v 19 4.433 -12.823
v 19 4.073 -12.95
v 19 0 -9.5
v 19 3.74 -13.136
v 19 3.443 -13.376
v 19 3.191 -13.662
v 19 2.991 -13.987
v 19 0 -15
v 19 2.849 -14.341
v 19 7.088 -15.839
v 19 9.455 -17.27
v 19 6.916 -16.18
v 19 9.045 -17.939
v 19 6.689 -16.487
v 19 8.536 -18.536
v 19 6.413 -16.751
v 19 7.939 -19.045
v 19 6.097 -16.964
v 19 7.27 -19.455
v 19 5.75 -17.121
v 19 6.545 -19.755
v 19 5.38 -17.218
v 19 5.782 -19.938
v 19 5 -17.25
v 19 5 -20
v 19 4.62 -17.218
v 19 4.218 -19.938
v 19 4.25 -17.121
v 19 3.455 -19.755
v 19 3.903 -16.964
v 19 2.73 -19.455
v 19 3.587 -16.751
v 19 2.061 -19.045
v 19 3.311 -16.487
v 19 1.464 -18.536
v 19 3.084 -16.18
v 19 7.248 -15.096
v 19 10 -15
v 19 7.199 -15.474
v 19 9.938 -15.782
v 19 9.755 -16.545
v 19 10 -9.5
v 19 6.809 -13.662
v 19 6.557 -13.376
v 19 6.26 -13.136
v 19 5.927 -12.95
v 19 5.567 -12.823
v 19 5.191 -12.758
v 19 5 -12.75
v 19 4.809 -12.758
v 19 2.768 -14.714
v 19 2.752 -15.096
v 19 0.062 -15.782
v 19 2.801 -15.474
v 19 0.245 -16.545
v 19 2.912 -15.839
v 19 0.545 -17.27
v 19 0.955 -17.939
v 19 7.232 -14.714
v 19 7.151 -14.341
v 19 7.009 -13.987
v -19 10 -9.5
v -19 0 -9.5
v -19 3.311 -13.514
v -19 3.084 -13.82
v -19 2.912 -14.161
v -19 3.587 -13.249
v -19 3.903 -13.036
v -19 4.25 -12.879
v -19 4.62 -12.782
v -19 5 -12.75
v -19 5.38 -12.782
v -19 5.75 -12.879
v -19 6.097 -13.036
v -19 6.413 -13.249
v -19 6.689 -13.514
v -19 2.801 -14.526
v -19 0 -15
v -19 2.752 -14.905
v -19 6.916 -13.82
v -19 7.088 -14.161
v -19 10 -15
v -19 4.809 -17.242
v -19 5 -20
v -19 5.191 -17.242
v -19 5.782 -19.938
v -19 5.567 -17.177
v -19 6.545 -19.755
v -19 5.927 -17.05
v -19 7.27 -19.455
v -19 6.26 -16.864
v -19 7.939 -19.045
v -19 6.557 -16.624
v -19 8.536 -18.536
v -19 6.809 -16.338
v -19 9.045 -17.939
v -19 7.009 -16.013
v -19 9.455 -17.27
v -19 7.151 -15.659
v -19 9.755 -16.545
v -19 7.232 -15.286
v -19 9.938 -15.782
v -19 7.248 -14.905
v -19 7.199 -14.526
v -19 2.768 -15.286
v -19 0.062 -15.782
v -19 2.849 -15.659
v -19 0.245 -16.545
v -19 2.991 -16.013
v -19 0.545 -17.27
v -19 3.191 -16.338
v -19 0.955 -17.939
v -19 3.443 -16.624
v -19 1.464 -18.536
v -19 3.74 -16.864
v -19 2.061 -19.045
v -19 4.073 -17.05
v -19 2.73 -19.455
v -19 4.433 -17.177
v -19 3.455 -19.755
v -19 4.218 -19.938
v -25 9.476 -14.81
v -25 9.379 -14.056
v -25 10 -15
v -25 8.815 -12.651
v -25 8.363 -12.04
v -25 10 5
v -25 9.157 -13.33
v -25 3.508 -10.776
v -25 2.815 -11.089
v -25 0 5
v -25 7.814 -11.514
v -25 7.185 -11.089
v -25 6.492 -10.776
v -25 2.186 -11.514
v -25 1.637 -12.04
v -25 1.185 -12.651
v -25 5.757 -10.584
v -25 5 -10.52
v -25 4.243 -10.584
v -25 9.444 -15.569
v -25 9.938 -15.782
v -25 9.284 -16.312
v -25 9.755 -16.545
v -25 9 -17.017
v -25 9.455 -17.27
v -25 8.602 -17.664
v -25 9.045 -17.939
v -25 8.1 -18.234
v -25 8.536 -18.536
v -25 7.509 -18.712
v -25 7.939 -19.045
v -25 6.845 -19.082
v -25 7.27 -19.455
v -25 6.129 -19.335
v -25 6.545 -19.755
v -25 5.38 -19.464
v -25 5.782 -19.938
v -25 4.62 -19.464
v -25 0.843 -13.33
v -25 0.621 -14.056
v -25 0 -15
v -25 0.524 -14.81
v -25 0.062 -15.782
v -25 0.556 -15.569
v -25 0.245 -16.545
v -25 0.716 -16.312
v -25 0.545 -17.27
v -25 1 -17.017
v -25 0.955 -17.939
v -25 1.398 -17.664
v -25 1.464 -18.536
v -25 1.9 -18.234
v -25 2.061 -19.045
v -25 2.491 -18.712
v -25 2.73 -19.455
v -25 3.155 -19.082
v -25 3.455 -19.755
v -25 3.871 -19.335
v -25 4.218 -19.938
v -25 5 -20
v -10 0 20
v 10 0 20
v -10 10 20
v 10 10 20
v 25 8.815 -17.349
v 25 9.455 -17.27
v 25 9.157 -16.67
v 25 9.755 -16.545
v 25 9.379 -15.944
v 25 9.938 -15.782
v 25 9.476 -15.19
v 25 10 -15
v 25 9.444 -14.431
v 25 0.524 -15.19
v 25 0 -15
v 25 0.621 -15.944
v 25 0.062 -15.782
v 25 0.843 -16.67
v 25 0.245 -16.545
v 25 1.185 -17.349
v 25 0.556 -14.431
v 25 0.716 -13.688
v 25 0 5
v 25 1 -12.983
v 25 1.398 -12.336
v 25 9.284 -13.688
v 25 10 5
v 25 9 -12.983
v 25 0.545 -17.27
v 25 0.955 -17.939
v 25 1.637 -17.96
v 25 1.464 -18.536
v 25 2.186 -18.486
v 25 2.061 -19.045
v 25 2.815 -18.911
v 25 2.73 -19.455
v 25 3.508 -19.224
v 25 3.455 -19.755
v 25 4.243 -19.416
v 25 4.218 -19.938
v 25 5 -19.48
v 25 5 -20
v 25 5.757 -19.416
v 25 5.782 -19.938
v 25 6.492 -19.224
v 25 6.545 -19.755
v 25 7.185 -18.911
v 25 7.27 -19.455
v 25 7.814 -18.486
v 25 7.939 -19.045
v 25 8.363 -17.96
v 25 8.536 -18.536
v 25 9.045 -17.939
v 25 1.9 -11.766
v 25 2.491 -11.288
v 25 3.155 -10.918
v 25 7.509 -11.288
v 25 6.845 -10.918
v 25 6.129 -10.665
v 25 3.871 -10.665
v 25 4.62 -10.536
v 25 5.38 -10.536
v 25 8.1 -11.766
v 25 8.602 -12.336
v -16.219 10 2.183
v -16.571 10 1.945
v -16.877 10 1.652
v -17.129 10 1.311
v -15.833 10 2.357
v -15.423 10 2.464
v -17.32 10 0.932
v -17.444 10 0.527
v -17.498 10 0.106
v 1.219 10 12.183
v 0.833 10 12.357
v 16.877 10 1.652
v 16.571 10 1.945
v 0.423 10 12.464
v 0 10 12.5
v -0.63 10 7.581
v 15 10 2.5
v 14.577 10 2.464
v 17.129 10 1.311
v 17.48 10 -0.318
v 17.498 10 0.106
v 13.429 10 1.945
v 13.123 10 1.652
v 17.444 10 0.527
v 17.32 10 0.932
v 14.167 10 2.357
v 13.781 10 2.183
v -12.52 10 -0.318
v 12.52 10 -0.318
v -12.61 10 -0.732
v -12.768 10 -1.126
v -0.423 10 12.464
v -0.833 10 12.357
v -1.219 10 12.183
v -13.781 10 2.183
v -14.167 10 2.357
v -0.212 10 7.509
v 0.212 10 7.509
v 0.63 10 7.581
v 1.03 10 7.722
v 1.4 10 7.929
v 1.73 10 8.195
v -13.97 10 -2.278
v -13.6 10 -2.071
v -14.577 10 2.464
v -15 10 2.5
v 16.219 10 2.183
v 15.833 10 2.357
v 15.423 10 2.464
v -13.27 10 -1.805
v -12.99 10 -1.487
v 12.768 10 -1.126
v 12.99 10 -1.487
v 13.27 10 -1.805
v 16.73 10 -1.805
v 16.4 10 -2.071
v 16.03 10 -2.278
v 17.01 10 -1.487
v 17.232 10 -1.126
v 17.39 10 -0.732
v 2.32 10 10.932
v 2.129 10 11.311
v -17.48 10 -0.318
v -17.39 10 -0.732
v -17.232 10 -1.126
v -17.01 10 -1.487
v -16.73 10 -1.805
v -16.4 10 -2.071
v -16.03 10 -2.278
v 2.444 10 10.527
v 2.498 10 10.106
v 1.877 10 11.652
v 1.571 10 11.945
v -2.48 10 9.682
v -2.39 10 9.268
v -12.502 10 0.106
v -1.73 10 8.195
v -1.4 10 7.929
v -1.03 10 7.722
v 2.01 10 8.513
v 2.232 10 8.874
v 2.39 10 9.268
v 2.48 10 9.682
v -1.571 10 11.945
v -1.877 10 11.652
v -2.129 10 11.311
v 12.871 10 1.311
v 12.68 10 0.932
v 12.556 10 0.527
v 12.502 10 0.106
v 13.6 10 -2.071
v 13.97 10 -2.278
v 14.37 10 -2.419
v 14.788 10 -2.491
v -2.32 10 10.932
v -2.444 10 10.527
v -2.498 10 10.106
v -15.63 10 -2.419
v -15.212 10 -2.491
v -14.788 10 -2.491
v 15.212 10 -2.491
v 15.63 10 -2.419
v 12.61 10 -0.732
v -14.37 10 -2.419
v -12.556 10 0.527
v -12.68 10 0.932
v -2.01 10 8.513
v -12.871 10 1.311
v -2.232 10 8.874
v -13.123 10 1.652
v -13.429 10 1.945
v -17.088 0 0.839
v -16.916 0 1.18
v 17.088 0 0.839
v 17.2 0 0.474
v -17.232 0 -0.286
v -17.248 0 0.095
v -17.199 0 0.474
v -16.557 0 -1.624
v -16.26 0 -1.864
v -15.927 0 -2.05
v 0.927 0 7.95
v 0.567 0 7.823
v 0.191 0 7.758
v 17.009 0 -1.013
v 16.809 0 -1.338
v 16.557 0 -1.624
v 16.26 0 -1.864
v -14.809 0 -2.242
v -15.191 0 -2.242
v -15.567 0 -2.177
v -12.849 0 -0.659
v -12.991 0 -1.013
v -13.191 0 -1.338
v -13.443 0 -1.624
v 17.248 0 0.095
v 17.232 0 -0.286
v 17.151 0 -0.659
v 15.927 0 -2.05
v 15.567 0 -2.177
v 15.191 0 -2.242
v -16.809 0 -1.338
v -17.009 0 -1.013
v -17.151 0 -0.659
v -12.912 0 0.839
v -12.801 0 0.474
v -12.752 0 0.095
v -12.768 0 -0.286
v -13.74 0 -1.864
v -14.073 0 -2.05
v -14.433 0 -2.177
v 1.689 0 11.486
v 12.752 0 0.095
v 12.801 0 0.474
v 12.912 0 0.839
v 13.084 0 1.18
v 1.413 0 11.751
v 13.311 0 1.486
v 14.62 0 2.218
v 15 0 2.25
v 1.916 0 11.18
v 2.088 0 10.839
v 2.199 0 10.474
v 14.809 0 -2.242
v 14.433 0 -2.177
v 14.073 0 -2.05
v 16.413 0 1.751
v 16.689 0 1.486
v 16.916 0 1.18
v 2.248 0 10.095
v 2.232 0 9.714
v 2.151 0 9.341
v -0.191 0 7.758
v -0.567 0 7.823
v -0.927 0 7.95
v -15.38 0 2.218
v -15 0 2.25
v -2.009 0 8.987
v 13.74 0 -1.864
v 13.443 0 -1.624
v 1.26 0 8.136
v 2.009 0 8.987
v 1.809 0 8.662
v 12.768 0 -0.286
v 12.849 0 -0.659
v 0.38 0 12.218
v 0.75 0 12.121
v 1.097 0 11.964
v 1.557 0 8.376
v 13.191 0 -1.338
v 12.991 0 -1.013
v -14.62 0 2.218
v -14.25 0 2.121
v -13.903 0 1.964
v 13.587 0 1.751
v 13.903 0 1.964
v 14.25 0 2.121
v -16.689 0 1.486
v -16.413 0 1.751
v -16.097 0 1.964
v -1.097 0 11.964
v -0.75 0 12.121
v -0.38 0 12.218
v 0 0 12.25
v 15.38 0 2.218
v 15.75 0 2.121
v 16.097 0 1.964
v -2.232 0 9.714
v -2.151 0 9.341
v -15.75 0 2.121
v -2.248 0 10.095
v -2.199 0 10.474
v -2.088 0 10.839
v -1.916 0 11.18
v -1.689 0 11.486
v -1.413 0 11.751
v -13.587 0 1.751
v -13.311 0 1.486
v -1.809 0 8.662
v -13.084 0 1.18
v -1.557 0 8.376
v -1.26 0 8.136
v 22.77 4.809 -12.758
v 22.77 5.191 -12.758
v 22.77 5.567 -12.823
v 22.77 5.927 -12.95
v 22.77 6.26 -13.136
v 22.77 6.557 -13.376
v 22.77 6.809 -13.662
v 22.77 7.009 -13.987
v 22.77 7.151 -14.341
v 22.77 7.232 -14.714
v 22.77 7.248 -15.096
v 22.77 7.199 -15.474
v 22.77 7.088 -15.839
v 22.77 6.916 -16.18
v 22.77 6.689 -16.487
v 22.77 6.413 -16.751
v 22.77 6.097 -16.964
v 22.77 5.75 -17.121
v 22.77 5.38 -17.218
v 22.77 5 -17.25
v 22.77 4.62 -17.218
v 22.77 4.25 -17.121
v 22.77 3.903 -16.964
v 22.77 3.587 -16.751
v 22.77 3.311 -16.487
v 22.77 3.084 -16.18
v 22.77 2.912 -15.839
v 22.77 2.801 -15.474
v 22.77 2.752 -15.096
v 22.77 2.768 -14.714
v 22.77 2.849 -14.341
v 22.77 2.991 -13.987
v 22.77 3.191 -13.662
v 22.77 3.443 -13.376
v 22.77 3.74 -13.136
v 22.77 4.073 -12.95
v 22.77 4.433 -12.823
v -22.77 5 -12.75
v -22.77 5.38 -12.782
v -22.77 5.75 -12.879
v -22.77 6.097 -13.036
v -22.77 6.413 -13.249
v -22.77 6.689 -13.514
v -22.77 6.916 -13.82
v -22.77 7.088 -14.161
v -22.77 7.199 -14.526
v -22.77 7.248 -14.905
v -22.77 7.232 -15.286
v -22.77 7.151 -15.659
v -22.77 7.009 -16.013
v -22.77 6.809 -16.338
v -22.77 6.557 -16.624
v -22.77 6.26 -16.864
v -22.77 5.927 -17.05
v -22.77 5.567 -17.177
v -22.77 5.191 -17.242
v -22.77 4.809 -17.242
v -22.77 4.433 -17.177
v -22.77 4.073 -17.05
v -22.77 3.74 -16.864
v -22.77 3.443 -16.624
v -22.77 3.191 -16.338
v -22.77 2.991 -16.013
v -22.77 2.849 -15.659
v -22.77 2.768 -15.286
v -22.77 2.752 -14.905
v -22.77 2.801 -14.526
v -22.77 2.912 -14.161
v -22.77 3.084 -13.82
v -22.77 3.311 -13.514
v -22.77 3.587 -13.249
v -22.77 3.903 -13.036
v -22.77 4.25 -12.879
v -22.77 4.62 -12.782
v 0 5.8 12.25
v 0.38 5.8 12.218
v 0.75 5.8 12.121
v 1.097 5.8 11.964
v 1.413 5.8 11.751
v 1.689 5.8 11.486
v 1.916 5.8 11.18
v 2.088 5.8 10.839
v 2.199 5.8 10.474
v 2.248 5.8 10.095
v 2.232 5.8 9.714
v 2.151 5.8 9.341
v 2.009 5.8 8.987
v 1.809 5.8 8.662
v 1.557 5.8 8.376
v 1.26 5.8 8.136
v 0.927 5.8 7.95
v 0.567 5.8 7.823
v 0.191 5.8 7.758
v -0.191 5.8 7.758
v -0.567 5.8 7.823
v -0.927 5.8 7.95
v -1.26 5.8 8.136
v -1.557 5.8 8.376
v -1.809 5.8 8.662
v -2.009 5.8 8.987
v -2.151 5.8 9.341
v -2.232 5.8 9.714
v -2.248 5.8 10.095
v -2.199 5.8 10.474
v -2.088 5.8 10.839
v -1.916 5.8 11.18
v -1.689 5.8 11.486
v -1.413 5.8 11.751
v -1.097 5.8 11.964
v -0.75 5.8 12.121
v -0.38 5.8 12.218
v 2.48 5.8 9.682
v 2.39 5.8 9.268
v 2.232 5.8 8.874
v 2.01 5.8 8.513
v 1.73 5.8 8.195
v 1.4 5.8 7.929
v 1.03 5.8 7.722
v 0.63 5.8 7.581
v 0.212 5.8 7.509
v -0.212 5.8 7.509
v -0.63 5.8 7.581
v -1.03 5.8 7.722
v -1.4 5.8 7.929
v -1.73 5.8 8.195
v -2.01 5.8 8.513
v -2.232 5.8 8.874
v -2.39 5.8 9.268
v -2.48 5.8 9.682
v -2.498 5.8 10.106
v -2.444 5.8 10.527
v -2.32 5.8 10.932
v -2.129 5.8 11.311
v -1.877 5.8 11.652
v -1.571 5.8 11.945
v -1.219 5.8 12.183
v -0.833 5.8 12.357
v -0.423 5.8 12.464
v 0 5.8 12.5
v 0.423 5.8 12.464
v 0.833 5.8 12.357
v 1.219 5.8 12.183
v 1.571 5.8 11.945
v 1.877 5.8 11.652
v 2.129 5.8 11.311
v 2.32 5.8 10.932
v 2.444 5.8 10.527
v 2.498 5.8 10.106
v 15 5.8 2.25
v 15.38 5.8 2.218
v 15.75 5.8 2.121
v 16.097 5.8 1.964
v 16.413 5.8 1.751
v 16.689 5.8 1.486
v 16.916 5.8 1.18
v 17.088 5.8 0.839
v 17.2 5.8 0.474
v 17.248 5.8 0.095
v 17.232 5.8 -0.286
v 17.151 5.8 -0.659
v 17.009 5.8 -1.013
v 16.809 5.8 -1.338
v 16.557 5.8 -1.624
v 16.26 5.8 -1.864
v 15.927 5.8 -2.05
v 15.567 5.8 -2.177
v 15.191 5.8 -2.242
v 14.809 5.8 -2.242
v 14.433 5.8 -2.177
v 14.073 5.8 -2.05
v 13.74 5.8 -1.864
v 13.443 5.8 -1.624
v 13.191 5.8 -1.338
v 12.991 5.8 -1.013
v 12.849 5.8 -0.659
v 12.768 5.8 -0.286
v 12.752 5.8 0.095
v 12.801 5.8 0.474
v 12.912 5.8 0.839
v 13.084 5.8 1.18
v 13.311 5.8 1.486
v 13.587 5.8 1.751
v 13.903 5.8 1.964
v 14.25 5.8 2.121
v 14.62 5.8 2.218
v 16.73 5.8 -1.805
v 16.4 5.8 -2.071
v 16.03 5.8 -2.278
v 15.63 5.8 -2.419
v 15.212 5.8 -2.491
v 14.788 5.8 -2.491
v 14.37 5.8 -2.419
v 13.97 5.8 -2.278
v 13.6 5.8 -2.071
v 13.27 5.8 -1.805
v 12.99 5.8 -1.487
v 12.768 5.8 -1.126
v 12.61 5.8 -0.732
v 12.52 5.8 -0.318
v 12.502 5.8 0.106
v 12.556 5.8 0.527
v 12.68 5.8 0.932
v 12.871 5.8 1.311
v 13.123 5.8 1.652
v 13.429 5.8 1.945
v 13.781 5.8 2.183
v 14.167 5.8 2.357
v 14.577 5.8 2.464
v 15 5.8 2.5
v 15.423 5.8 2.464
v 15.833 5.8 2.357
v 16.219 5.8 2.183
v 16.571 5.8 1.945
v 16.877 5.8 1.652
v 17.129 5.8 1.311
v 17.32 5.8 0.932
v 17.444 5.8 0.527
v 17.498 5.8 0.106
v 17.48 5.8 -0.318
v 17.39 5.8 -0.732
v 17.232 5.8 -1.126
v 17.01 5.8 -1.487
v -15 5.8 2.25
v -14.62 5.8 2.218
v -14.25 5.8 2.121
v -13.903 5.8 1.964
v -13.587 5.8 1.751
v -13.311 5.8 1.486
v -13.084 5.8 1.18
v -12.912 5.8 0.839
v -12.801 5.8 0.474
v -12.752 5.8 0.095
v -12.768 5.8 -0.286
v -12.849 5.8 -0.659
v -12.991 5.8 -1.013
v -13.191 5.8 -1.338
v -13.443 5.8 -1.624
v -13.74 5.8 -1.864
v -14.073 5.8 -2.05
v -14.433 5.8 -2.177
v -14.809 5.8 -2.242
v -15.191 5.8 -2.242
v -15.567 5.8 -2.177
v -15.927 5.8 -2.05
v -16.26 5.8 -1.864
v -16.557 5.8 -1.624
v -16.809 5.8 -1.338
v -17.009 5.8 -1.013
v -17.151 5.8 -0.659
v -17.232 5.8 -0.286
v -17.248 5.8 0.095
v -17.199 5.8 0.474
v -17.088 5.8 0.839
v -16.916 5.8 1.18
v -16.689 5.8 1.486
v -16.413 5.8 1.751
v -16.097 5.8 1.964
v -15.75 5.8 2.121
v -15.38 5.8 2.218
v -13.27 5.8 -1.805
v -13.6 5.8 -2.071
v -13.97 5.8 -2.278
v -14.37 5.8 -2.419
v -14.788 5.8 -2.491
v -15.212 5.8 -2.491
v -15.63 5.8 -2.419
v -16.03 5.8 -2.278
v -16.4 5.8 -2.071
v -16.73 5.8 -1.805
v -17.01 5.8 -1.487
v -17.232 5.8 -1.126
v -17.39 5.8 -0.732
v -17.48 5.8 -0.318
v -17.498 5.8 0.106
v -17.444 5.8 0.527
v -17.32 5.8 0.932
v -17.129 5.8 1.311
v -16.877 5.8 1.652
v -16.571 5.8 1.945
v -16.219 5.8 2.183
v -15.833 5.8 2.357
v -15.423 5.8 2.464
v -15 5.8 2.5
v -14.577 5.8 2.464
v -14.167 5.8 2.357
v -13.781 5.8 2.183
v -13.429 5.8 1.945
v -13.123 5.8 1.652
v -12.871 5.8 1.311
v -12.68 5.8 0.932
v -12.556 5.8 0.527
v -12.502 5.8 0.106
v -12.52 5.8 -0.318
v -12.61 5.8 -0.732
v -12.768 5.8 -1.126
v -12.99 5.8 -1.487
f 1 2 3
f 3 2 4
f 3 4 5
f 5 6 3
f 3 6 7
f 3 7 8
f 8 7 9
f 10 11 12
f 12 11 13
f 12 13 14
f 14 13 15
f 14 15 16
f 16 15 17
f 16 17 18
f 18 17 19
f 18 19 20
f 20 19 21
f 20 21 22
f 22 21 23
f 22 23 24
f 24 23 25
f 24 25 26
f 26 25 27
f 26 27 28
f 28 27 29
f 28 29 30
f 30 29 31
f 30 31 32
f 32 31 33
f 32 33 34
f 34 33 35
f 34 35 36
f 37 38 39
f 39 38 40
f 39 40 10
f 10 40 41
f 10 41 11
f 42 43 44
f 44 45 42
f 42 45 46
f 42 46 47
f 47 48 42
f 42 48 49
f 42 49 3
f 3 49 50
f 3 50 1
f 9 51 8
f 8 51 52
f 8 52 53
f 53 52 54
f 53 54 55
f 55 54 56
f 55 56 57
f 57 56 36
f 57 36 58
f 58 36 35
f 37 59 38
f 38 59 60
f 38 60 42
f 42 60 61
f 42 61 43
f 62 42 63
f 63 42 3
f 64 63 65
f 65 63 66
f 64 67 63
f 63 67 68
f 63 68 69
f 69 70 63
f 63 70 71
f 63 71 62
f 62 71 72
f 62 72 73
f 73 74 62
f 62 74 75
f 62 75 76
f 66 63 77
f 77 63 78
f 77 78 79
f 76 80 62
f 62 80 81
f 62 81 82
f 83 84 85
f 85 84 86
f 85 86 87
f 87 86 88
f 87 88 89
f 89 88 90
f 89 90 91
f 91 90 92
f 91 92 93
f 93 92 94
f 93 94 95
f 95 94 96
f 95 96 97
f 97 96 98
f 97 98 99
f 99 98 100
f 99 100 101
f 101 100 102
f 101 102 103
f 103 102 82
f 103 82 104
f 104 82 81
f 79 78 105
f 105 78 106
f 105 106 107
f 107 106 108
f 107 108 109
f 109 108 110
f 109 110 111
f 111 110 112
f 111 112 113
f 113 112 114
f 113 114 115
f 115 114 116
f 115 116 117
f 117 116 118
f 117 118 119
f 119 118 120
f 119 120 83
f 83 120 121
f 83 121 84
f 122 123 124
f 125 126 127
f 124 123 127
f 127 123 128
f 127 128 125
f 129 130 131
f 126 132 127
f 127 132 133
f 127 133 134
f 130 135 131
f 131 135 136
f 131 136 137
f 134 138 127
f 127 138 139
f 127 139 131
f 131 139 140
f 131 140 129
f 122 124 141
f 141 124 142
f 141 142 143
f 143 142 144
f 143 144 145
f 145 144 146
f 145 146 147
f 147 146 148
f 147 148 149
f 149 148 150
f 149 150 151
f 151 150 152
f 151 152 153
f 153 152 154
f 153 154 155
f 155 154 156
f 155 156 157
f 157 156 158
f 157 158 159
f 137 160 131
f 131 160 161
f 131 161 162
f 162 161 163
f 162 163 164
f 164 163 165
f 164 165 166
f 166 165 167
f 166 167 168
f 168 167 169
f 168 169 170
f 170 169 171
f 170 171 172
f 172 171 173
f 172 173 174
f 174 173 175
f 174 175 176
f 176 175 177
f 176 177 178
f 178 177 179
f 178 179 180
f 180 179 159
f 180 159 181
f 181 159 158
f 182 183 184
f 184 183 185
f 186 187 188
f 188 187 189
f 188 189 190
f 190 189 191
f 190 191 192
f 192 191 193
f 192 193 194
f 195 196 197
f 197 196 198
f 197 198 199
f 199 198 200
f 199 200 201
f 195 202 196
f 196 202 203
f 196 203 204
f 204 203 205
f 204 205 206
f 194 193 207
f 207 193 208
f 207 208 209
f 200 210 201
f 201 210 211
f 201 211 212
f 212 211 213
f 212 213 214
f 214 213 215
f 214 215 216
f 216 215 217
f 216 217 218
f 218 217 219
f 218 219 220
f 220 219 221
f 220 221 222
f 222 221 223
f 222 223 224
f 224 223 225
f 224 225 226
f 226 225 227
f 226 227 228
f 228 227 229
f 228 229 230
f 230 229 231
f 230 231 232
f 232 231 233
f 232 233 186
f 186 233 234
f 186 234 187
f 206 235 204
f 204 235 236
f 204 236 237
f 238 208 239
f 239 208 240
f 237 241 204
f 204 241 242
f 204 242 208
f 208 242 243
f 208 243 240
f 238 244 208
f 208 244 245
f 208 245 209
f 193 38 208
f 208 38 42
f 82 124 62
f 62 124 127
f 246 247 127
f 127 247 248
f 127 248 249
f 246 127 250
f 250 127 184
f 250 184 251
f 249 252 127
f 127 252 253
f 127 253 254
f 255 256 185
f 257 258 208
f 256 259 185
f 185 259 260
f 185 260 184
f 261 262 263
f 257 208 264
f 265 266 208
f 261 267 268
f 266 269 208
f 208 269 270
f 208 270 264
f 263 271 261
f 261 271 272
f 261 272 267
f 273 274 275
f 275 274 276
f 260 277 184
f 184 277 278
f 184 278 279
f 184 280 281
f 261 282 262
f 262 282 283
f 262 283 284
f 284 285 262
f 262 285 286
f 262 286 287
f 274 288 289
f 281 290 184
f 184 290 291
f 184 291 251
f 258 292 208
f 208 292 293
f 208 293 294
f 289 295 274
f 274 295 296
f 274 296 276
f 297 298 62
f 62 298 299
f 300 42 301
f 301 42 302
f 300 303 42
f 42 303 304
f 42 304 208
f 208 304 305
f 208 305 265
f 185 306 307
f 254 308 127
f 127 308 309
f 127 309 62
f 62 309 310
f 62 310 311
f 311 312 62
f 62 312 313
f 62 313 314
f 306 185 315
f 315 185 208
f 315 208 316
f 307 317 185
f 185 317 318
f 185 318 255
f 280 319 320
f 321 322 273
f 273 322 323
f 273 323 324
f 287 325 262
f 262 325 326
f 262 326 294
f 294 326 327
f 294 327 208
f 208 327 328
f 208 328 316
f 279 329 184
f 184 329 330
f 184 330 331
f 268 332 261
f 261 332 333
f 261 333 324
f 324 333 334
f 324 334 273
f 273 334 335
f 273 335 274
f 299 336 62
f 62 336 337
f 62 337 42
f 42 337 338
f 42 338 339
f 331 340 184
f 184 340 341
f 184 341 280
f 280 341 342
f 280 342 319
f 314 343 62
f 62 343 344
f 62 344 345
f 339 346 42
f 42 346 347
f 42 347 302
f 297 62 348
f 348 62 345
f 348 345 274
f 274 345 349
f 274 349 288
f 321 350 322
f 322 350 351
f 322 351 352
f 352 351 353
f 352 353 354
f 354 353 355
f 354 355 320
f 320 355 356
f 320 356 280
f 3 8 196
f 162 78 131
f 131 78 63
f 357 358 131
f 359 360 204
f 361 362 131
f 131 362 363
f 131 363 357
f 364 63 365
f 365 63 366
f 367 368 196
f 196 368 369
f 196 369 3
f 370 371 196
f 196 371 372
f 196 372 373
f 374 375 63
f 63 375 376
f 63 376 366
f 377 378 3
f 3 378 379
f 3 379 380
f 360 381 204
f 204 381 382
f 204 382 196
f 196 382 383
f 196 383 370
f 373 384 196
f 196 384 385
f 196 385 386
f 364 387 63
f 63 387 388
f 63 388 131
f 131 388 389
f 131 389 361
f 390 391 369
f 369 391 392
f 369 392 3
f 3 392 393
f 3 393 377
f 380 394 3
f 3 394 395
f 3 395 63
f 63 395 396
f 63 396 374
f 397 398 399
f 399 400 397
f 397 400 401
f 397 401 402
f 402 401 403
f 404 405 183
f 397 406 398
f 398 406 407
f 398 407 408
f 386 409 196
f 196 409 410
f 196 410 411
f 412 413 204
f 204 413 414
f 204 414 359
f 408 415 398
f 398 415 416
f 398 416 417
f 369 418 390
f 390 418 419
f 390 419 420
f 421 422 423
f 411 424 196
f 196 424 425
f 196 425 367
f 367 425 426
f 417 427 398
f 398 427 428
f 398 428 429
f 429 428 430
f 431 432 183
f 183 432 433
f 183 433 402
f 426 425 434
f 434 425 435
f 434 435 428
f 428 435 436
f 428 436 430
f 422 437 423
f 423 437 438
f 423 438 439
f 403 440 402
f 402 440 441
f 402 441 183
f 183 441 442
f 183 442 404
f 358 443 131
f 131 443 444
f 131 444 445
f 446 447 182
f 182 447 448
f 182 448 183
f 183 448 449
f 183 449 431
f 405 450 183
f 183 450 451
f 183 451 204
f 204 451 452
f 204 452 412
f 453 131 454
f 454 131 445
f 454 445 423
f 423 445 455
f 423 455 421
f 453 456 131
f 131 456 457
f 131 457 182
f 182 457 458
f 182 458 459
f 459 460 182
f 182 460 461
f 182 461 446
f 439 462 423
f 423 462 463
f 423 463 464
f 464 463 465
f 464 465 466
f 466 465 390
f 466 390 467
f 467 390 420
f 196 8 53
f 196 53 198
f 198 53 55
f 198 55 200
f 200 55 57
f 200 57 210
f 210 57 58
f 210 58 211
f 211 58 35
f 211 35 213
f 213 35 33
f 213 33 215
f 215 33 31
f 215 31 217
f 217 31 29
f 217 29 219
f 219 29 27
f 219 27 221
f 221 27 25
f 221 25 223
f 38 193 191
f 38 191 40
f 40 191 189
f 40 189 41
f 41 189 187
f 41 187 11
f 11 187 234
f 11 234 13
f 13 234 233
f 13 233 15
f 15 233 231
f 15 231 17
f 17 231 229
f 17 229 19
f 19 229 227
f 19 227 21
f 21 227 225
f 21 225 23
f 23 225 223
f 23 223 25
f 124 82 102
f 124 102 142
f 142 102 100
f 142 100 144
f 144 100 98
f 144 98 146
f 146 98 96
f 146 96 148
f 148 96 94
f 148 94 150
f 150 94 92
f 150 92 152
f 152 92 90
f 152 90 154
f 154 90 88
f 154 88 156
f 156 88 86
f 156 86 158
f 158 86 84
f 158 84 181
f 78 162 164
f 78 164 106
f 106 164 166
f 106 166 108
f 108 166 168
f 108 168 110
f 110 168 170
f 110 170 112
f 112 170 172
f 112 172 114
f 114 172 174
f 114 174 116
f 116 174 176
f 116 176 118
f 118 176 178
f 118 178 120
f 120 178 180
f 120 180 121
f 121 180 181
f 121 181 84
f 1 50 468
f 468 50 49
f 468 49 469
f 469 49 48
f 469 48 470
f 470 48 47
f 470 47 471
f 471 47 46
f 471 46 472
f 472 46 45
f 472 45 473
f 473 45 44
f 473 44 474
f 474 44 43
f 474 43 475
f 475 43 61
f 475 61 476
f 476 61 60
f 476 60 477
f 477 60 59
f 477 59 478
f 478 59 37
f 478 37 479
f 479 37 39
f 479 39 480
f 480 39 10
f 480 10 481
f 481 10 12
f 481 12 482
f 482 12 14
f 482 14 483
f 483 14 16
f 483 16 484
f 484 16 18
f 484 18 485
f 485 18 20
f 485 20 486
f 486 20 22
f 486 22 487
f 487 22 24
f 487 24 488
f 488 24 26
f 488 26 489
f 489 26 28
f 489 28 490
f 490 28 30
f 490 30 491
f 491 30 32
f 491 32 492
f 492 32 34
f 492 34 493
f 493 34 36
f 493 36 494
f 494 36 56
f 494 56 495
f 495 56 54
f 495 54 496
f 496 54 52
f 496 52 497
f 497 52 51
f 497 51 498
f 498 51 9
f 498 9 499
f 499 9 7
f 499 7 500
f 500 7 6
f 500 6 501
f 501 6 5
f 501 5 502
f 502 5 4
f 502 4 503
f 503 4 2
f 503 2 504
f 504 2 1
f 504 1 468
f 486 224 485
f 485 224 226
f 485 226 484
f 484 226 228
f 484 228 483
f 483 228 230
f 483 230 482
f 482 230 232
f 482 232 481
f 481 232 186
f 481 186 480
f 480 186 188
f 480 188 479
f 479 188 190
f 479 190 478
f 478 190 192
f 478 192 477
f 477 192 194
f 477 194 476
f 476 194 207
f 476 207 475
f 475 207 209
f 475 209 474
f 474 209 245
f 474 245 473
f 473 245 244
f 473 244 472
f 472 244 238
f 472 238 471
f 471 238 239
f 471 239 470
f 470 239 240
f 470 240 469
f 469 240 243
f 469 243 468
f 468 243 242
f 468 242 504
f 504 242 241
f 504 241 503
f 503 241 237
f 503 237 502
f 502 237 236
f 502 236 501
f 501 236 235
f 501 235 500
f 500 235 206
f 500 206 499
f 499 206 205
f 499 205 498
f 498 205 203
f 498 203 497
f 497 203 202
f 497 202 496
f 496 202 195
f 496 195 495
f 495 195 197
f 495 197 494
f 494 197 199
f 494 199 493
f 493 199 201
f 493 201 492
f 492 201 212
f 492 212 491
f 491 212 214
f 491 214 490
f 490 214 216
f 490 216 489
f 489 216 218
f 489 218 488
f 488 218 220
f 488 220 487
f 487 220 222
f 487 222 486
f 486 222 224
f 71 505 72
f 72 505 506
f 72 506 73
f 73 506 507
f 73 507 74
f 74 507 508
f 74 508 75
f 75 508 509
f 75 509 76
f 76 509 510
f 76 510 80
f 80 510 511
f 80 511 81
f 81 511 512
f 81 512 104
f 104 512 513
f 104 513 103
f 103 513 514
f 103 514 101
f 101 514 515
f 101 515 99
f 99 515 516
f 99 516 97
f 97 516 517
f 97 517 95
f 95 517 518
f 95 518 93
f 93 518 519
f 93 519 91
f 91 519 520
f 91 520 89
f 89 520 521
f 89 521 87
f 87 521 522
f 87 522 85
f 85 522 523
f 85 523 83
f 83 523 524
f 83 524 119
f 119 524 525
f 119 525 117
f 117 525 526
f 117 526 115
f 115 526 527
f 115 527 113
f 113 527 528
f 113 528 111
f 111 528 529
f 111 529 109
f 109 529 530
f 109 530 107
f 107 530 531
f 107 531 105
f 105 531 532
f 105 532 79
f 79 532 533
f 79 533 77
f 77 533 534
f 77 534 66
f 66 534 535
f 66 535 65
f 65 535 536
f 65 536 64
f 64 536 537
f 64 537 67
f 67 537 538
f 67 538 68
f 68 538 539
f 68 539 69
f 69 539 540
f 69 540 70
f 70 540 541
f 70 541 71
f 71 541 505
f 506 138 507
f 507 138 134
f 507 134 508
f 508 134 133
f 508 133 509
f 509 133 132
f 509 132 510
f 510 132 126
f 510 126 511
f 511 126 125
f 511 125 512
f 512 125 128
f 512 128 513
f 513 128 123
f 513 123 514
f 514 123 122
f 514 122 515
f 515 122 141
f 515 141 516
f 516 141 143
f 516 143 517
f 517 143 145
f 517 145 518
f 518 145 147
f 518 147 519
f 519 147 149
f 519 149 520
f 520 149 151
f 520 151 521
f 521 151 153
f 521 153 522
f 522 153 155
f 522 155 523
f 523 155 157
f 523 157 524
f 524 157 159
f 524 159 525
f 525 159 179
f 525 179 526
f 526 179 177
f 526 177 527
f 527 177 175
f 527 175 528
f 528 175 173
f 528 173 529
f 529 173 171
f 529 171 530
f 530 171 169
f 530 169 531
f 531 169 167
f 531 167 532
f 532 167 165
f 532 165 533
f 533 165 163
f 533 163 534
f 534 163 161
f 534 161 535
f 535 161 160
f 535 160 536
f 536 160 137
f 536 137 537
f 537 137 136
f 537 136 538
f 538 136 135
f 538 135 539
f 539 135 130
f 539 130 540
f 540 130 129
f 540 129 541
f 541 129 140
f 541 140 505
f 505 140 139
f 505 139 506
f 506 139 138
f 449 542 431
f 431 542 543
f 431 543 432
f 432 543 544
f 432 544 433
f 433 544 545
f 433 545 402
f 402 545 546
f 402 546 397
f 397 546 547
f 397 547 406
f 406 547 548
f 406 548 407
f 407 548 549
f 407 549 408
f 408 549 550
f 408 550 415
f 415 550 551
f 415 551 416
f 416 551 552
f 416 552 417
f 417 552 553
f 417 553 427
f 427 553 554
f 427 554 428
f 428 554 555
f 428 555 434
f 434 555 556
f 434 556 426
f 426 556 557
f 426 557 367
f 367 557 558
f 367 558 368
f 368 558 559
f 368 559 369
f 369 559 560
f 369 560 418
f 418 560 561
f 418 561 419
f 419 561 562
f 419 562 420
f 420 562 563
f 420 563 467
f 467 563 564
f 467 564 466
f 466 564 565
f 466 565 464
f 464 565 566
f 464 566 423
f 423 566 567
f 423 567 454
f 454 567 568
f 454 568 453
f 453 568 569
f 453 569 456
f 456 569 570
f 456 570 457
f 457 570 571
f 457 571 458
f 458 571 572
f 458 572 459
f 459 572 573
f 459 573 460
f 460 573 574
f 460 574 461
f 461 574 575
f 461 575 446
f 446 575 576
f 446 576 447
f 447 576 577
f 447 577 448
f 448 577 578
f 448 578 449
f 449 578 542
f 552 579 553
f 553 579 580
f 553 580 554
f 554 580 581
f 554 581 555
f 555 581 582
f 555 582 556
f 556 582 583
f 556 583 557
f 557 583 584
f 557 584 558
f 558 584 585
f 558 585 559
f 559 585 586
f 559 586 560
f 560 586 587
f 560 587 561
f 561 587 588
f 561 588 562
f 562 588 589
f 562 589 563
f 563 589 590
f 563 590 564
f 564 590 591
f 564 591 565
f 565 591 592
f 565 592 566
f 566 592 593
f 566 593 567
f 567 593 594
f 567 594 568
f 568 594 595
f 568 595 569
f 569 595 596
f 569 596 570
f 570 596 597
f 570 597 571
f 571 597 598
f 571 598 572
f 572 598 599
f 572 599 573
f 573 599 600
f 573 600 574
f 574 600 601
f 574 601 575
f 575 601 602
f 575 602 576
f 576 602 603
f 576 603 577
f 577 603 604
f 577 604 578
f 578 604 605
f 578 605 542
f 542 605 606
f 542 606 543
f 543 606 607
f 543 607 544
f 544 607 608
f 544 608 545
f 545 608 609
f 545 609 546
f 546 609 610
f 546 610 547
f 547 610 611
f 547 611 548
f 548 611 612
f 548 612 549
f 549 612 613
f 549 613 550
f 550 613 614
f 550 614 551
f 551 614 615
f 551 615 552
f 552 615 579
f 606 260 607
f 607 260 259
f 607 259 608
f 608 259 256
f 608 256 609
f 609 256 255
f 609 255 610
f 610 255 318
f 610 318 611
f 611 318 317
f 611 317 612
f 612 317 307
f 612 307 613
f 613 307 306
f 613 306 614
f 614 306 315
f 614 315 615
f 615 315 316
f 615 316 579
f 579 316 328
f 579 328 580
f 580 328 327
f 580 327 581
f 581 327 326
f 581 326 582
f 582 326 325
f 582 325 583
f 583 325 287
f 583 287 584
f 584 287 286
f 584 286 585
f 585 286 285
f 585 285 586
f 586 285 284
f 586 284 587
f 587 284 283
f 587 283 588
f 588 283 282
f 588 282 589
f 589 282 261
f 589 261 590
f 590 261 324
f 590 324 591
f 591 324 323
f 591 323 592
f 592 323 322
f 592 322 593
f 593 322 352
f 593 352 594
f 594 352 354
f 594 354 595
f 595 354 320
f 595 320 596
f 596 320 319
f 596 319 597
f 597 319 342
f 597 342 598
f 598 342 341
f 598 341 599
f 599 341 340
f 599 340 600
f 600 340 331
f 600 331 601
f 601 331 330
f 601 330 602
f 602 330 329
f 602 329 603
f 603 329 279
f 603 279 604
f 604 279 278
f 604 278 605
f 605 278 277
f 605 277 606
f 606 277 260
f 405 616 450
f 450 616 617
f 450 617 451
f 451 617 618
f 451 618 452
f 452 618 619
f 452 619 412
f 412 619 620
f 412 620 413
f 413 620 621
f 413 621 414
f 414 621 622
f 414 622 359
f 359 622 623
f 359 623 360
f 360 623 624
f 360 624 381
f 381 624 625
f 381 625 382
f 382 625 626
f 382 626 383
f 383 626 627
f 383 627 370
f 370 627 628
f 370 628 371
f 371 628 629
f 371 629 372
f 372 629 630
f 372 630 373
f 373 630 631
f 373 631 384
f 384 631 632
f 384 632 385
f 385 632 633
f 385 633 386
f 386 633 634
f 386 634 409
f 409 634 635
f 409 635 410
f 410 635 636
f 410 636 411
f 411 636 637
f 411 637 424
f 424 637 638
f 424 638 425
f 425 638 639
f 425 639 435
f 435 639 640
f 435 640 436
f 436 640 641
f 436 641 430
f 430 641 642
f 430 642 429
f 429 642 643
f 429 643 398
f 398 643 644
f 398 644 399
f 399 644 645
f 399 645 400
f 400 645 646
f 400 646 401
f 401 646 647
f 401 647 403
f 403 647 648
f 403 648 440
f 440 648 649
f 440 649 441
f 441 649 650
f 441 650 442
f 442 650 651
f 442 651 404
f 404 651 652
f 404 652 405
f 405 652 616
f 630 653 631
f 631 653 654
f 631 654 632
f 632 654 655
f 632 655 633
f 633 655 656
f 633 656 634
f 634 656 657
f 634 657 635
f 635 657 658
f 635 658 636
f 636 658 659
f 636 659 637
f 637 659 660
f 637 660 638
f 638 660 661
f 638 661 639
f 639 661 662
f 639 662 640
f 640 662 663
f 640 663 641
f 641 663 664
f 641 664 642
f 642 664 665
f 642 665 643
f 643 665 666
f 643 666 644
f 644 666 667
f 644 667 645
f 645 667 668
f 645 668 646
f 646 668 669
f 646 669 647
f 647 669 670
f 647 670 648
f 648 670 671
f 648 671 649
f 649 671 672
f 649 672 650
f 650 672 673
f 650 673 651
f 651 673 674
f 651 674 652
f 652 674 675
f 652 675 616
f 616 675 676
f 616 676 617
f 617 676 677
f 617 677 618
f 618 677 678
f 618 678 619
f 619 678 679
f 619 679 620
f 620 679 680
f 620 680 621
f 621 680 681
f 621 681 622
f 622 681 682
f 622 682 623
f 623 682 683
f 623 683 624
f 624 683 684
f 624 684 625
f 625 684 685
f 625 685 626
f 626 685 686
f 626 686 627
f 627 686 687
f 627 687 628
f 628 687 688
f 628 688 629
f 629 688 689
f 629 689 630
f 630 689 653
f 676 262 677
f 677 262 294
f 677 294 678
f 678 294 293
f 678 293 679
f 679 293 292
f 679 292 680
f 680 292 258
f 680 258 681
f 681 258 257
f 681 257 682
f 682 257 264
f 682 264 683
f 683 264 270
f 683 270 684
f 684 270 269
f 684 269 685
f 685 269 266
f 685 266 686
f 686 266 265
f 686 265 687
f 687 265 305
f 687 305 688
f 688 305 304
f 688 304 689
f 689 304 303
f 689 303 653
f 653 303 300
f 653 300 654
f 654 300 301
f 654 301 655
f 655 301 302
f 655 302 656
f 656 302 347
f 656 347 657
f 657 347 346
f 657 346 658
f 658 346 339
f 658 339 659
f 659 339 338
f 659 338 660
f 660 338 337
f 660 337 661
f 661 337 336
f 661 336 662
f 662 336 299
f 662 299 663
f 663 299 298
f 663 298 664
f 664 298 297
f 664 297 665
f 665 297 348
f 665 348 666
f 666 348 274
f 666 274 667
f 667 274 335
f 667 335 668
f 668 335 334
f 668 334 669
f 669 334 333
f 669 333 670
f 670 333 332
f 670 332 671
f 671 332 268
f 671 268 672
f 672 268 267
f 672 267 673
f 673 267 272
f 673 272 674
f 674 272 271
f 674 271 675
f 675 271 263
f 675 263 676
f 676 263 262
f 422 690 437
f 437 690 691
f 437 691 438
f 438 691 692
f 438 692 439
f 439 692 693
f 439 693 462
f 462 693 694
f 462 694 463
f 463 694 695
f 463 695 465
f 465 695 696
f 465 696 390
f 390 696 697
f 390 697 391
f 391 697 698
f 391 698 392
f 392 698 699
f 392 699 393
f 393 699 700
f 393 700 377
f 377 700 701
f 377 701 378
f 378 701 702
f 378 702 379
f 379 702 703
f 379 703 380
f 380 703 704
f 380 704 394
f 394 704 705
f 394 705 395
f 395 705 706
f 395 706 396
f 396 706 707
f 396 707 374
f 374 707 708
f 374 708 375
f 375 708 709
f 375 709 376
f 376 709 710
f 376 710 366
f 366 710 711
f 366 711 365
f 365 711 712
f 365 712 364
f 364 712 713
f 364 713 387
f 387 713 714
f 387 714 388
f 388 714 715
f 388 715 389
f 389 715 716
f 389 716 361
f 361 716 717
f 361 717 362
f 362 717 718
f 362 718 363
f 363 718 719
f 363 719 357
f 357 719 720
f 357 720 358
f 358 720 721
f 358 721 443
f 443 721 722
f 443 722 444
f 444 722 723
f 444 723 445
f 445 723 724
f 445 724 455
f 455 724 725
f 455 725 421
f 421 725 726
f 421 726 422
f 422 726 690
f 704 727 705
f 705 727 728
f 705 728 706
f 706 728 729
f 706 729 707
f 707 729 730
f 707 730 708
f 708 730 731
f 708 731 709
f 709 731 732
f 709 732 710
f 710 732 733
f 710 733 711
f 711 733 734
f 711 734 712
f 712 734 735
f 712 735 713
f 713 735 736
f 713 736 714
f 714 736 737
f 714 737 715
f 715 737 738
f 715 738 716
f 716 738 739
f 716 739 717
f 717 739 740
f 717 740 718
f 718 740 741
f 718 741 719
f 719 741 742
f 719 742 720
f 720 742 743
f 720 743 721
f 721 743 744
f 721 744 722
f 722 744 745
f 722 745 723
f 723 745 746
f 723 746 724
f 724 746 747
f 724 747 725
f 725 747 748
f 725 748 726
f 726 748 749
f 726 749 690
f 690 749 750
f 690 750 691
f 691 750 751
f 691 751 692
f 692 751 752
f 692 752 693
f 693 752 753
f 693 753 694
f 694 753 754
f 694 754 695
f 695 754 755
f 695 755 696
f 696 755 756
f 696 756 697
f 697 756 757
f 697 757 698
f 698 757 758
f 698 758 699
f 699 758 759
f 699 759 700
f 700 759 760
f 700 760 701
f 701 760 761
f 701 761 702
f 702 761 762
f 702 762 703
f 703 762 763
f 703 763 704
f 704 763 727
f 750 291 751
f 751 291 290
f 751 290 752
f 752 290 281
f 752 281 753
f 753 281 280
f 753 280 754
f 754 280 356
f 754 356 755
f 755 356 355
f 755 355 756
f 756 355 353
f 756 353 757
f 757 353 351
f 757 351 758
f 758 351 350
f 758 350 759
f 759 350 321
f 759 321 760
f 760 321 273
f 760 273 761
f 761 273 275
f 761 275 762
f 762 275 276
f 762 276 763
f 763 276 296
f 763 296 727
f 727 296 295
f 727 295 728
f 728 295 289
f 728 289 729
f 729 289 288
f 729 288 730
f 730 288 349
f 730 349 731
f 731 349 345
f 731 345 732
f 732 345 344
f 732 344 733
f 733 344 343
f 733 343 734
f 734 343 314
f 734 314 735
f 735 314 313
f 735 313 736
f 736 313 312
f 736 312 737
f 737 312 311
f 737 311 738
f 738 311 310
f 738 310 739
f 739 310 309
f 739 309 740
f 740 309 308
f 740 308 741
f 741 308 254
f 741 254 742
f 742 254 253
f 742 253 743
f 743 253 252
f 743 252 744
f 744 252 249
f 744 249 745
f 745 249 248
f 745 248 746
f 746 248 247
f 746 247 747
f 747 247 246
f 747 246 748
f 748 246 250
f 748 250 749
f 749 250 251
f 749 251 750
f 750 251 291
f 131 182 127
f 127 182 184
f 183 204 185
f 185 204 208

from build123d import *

# Parameters (mm, degrees)
BOSS_EXTRUDE1_DEPTH                     = 10
FILLET1_R                               = 5
CBORE_FOR_M5_HEX_HEAD_BOLT1_D           = 4.5
CBORE_FOR_M5_HEX_HEAD_BOLT1_DEPTH       = 10
CBORE_FOR_M5_HEX_HEAD_BOLT1_CBORE_D     = 5
CBORE_FOR_M5_HEX_HEAD_BOLT1_CBORE_DEPTH = 4.2
CBORE_FOR_M5_HEX_HEAD_BOLT1_TIP         = 1.351936393
CHAMFER1_SIZE                           = 15


with BuildPart() as part:
    # Sketch1 → Boss-Extrude1 (new body)
    with BuildSketch(Plane(origin=(0, 0, 0), x_dir=(1, 0, 0), z_dir=(0, 1, 0))):
        Polygon((-25, 20), (-25, -20), (25, -20), (25, 20), (19, 20), (19, 9.5), (-19, 9.5), (-19, 20), align=None)
    extrude(amount=BOSS_EXTRUDE1_DEPTH)

    # Fillet1
    fillet1_edges = [part.edges().sort_by_distance(p)[0] for p in [
        (22, 10, -20),
        (22, 0, -20),
        (-22, 0, -20),
        (-22, 10, -20),
    ]]
    fillet(fillet1_edges, radius=FILLET1_R - 0.0001)  # a hair under: the kernel refuses the full size

    # Sketch3 → CSK for M4 SFHCS1 (revolve, cut)
    with BuildSketch(Plane(origin=(25, 5, -15), x_dir=(0, 0, -1), z_dir=(0, 1, 0))):
        Polygon((0, 0), (0, 11.351936393), (2.25, 10), (2.25, 2.23), (4.48, 0), align=None)
    csk_for_m4_sfhcs1 = revolve(axis=Axis((31.35, 5, -15), (-1, 0, 0)), mode=Mode.SUBTRACT)

    # Mirror1: CSK for M4 SFHCS1 across plane
    add(csk_for_m4_sfhcs1.mirror(Plane(origin=(0, 0, 0), x_dir=(0, 0, 1), z_dir=(1, 0, 0))), mode=Mode.SUBTRACT)

    # CBORE for M5 Hex Head Bolt1
    with Locations(Plane(origin=(0, 10, 0), x_dir=(1, 0, 0), z_dir=(0, 1, 0))):
        with Locations((-15, 0), (15, 0), (0, -10)):
            CounterBoreHole(CBORE_FOR_M5_HEX_HEAD_BOLT1_D / 2, CBORE_FOR_M5_HEX_HEAD_BOLT1_CBORE_D / 2, CBORE_FOR_M5_HEX_HEAD_BOLT1_CBORE_DEPTH, depth=CBORE_FOR_M5_HEX_HEAD_BOLT1_DEPTH)
            with Locations((0, 0, -(CBORE_FOR_M5_HEX_HEAD_BOLT1_DEPTH + CBORE_FOR_M5_HEX_HEAD_BOLT1_TIP / 2))):  # 118° drill point
                Cone(0, CBORE_FOR_M5_HEX_HEAD_BOLT1_D / 2, CBORE_FOR_M5_HEX_HEAD_BOLT1_TIP, mode=Mode.SUBTRACT)

    # Chamfer1
    chamfer1_edges = [part.edges().sort_by_distance(p)[0] for p in [
        (25, 5, 20),
        (-25, 5, 20),
    ]]
    chamfer(chamfer1_edges, length=CHAMFER1_SIZE)


solid = part.part
